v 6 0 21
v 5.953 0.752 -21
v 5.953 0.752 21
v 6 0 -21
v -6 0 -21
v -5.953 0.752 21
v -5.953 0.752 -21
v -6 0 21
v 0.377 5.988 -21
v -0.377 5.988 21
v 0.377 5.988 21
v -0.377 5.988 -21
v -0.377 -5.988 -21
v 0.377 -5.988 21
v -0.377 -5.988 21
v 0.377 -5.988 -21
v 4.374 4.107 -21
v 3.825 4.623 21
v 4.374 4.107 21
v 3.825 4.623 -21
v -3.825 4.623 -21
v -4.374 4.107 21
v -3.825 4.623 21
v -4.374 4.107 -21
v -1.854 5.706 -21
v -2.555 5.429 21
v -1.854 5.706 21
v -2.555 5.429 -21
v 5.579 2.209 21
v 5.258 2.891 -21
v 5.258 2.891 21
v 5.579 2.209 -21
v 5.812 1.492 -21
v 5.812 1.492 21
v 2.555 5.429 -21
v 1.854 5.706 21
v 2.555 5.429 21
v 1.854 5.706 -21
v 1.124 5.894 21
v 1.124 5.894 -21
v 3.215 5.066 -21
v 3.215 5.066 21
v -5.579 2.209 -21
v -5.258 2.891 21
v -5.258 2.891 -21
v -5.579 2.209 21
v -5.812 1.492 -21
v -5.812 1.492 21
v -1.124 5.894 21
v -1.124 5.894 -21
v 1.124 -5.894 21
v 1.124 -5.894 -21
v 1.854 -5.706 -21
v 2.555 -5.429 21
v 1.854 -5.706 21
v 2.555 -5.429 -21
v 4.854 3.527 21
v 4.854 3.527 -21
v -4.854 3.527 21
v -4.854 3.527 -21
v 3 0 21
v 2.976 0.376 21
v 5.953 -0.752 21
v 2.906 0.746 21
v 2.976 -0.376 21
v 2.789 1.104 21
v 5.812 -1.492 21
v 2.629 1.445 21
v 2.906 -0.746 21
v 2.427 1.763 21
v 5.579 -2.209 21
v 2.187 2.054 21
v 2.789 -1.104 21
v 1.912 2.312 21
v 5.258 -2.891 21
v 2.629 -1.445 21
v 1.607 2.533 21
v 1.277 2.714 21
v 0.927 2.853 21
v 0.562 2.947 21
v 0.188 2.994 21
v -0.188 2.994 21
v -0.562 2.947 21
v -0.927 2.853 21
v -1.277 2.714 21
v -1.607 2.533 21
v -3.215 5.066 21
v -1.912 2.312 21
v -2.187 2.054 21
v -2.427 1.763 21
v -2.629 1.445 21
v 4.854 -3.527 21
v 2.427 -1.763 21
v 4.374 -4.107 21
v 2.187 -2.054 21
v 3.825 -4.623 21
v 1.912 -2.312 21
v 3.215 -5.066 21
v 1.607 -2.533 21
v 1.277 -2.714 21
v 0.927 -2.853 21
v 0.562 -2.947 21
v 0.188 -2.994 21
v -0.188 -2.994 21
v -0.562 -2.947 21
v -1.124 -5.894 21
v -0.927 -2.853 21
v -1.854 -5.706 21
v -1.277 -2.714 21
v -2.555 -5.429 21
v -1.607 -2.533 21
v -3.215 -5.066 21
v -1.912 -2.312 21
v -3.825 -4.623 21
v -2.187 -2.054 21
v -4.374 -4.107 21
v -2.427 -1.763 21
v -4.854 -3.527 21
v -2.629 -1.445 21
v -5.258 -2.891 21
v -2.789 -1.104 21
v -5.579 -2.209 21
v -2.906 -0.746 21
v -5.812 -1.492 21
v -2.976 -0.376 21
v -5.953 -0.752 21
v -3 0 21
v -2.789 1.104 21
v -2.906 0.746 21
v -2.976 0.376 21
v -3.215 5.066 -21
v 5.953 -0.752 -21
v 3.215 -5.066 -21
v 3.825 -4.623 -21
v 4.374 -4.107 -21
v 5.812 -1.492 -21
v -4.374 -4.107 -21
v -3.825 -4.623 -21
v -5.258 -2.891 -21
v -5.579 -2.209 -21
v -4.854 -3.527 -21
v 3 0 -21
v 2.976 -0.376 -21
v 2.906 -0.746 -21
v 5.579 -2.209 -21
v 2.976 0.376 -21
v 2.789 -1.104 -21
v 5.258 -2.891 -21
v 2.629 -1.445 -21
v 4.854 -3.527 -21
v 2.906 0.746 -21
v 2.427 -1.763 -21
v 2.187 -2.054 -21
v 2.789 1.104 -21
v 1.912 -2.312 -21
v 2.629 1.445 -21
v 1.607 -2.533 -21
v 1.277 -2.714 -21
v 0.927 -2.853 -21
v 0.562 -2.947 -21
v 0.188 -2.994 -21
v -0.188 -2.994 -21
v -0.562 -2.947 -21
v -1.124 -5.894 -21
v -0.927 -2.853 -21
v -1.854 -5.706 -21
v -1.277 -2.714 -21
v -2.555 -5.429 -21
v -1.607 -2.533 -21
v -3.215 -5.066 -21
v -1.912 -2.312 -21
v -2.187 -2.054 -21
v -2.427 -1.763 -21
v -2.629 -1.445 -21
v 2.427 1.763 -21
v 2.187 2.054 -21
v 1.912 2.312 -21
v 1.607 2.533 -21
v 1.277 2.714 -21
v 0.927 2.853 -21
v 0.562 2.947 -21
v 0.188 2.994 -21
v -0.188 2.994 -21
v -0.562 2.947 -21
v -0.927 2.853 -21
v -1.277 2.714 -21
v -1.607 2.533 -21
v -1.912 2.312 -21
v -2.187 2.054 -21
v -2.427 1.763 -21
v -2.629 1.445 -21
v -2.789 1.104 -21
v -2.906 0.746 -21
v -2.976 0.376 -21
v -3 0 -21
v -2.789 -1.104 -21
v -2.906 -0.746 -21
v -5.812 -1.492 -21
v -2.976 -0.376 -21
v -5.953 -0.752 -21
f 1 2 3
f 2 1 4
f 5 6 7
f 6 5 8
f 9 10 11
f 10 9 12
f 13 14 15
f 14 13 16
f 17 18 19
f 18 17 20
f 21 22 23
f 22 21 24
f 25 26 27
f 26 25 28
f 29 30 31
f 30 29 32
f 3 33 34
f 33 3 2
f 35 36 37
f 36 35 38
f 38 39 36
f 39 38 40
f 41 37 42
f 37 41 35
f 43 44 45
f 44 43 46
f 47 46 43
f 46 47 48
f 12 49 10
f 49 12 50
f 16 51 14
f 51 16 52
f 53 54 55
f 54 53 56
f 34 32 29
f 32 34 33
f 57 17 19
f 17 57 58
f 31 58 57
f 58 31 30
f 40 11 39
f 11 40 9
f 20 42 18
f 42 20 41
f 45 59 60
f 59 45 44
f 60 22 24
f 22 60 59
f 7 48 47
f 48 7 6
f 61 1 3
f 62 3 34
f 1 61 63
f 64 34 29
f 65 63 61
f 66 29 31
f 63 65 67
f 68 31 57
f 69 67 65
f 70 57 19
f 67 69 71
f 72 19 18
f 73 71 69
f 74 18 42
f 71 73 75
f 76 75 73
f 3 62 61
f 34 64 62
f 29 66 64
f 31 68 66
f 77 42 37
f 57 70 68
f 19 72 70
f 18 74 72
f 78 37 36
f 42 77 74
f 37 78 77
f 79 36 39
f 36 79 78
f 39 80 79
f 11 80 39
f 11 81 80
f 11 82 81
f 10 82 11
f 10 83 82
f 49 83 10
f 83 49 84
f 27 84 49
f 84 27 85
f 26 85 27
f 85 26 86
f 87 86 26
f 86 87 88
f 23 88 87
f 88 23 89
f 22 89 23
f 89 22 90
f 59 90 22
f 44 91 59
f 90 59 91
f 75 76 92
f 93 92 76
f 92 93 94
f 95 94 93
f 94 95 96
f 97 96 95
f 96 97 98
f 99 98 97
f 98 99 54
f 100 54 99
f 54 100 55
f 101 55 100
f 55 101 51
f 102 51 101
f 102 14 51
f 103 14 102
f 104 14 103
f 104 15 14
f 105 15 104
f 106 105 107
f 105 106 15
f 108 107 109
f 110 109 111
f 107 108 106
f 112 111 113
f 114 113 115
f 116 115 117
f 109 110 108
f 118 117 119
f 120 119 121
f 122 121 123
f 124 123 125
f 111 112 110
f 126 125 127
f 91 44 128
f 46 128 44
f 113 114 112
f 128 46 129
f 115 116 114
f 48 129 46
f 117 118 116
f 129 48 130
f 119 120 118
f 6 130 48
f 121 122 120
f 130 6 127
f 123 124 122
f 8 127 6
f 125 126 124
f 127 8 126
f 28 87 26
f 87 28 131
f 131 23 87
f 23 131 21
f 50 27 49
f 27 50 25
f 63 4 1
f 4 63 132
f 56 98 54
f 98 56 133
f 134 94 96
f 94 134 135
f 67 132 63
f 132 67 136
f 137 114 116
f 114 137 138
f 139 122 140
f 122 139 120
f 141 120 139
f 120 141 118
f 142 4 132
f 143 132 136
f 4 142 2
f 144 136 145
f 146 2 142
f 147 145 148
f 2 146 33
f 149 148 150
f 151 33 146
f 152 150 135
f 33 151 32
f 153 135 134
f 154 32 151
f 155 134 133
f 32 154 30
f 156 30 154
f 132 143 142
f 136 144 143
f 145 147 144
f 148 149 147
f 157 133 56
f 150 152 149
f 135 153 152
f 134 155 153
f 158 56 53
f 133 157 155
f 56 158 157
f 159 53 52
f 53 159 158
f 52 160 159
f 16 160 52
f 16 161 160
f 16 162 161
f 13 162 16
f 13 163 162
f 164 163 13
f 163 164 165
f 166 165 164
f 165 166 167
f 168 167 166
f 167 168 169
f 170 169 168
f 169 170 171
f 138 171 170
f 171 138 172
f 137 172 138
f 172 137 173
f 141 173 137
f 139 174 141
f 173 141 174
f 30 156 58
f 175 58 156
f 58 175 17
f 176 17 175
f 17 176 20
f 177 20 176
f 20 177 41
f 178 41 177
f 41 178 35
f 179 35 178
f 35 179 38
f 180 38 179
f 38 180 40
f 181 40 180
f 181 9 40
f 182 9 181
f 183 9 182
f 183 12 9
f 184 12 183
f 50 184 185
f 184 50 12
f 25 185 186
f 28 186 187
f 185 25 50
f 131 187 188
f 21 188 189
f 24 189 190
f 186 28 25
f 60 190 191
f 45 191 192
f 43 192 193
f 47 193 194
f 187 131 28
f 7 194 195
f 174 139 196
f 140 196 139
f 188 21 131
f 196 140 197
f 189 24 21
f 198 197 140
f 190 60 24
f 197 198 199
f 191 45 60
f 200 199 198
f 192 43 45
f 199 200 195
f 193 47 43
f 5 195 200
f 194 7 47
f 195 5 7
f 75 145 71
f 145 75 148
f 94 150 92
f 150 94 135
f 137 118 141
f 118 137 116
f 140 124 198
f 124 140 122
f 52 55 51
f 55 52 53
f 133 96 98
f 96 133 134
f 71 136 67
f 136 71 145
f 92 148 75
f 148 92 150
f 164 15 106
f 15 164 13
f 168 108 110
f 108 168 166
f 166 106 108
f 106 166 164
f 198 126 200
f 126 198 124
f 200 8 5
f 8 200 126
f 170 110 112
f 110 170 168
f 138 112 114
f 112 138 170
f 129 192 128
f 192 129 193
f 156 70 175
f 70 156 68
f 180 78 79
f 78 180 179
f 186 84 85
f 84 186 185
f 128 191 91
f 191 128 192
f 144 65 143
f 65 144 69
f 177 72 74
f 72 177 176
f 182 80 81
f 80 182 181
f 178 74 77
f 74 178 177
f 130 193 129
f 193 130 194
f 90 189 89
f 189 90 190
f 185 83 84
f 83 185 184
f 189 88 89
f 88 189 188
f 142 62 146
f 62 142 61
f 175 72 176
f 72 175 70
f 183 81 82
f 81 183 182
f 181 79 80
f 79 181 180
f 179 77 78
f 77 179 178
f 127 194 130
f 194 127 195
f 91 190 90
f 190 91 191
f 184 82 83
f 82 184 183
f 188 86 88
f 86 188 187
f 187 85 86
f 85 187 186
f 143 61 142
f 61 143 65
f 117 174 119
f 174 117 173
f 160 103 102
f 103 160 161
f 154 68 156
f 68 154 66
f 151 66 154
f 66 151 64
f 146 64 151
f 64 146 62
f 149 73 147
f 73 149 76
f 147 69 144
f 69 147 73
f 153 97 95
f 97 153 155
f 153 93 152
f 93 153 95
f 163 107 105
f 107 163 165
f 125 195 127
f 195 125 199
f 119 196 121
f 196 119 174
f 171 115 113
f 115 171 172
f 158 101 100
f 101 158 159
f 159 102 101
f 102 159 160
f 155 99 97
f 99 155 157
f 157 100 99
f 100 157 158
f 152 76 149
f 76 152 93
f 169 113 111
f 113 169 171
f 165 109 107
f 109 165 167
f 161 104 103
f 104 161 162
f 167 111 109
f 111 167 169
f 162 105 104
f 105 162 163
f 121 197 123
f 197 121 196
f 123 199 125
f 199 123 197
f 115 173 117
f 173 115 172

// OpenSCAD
$fn = 50;


difference() {
	union() {
		translate(v = [0, 0, -21.0000000000]) {
			cylinder(h = 42, r = 6.0000000000);
		}
	}
	union() {
		translate(v = [0, 0, -100.0000000000]) {
			cylinder(h = 200, r = 3);
		}
	}
}
